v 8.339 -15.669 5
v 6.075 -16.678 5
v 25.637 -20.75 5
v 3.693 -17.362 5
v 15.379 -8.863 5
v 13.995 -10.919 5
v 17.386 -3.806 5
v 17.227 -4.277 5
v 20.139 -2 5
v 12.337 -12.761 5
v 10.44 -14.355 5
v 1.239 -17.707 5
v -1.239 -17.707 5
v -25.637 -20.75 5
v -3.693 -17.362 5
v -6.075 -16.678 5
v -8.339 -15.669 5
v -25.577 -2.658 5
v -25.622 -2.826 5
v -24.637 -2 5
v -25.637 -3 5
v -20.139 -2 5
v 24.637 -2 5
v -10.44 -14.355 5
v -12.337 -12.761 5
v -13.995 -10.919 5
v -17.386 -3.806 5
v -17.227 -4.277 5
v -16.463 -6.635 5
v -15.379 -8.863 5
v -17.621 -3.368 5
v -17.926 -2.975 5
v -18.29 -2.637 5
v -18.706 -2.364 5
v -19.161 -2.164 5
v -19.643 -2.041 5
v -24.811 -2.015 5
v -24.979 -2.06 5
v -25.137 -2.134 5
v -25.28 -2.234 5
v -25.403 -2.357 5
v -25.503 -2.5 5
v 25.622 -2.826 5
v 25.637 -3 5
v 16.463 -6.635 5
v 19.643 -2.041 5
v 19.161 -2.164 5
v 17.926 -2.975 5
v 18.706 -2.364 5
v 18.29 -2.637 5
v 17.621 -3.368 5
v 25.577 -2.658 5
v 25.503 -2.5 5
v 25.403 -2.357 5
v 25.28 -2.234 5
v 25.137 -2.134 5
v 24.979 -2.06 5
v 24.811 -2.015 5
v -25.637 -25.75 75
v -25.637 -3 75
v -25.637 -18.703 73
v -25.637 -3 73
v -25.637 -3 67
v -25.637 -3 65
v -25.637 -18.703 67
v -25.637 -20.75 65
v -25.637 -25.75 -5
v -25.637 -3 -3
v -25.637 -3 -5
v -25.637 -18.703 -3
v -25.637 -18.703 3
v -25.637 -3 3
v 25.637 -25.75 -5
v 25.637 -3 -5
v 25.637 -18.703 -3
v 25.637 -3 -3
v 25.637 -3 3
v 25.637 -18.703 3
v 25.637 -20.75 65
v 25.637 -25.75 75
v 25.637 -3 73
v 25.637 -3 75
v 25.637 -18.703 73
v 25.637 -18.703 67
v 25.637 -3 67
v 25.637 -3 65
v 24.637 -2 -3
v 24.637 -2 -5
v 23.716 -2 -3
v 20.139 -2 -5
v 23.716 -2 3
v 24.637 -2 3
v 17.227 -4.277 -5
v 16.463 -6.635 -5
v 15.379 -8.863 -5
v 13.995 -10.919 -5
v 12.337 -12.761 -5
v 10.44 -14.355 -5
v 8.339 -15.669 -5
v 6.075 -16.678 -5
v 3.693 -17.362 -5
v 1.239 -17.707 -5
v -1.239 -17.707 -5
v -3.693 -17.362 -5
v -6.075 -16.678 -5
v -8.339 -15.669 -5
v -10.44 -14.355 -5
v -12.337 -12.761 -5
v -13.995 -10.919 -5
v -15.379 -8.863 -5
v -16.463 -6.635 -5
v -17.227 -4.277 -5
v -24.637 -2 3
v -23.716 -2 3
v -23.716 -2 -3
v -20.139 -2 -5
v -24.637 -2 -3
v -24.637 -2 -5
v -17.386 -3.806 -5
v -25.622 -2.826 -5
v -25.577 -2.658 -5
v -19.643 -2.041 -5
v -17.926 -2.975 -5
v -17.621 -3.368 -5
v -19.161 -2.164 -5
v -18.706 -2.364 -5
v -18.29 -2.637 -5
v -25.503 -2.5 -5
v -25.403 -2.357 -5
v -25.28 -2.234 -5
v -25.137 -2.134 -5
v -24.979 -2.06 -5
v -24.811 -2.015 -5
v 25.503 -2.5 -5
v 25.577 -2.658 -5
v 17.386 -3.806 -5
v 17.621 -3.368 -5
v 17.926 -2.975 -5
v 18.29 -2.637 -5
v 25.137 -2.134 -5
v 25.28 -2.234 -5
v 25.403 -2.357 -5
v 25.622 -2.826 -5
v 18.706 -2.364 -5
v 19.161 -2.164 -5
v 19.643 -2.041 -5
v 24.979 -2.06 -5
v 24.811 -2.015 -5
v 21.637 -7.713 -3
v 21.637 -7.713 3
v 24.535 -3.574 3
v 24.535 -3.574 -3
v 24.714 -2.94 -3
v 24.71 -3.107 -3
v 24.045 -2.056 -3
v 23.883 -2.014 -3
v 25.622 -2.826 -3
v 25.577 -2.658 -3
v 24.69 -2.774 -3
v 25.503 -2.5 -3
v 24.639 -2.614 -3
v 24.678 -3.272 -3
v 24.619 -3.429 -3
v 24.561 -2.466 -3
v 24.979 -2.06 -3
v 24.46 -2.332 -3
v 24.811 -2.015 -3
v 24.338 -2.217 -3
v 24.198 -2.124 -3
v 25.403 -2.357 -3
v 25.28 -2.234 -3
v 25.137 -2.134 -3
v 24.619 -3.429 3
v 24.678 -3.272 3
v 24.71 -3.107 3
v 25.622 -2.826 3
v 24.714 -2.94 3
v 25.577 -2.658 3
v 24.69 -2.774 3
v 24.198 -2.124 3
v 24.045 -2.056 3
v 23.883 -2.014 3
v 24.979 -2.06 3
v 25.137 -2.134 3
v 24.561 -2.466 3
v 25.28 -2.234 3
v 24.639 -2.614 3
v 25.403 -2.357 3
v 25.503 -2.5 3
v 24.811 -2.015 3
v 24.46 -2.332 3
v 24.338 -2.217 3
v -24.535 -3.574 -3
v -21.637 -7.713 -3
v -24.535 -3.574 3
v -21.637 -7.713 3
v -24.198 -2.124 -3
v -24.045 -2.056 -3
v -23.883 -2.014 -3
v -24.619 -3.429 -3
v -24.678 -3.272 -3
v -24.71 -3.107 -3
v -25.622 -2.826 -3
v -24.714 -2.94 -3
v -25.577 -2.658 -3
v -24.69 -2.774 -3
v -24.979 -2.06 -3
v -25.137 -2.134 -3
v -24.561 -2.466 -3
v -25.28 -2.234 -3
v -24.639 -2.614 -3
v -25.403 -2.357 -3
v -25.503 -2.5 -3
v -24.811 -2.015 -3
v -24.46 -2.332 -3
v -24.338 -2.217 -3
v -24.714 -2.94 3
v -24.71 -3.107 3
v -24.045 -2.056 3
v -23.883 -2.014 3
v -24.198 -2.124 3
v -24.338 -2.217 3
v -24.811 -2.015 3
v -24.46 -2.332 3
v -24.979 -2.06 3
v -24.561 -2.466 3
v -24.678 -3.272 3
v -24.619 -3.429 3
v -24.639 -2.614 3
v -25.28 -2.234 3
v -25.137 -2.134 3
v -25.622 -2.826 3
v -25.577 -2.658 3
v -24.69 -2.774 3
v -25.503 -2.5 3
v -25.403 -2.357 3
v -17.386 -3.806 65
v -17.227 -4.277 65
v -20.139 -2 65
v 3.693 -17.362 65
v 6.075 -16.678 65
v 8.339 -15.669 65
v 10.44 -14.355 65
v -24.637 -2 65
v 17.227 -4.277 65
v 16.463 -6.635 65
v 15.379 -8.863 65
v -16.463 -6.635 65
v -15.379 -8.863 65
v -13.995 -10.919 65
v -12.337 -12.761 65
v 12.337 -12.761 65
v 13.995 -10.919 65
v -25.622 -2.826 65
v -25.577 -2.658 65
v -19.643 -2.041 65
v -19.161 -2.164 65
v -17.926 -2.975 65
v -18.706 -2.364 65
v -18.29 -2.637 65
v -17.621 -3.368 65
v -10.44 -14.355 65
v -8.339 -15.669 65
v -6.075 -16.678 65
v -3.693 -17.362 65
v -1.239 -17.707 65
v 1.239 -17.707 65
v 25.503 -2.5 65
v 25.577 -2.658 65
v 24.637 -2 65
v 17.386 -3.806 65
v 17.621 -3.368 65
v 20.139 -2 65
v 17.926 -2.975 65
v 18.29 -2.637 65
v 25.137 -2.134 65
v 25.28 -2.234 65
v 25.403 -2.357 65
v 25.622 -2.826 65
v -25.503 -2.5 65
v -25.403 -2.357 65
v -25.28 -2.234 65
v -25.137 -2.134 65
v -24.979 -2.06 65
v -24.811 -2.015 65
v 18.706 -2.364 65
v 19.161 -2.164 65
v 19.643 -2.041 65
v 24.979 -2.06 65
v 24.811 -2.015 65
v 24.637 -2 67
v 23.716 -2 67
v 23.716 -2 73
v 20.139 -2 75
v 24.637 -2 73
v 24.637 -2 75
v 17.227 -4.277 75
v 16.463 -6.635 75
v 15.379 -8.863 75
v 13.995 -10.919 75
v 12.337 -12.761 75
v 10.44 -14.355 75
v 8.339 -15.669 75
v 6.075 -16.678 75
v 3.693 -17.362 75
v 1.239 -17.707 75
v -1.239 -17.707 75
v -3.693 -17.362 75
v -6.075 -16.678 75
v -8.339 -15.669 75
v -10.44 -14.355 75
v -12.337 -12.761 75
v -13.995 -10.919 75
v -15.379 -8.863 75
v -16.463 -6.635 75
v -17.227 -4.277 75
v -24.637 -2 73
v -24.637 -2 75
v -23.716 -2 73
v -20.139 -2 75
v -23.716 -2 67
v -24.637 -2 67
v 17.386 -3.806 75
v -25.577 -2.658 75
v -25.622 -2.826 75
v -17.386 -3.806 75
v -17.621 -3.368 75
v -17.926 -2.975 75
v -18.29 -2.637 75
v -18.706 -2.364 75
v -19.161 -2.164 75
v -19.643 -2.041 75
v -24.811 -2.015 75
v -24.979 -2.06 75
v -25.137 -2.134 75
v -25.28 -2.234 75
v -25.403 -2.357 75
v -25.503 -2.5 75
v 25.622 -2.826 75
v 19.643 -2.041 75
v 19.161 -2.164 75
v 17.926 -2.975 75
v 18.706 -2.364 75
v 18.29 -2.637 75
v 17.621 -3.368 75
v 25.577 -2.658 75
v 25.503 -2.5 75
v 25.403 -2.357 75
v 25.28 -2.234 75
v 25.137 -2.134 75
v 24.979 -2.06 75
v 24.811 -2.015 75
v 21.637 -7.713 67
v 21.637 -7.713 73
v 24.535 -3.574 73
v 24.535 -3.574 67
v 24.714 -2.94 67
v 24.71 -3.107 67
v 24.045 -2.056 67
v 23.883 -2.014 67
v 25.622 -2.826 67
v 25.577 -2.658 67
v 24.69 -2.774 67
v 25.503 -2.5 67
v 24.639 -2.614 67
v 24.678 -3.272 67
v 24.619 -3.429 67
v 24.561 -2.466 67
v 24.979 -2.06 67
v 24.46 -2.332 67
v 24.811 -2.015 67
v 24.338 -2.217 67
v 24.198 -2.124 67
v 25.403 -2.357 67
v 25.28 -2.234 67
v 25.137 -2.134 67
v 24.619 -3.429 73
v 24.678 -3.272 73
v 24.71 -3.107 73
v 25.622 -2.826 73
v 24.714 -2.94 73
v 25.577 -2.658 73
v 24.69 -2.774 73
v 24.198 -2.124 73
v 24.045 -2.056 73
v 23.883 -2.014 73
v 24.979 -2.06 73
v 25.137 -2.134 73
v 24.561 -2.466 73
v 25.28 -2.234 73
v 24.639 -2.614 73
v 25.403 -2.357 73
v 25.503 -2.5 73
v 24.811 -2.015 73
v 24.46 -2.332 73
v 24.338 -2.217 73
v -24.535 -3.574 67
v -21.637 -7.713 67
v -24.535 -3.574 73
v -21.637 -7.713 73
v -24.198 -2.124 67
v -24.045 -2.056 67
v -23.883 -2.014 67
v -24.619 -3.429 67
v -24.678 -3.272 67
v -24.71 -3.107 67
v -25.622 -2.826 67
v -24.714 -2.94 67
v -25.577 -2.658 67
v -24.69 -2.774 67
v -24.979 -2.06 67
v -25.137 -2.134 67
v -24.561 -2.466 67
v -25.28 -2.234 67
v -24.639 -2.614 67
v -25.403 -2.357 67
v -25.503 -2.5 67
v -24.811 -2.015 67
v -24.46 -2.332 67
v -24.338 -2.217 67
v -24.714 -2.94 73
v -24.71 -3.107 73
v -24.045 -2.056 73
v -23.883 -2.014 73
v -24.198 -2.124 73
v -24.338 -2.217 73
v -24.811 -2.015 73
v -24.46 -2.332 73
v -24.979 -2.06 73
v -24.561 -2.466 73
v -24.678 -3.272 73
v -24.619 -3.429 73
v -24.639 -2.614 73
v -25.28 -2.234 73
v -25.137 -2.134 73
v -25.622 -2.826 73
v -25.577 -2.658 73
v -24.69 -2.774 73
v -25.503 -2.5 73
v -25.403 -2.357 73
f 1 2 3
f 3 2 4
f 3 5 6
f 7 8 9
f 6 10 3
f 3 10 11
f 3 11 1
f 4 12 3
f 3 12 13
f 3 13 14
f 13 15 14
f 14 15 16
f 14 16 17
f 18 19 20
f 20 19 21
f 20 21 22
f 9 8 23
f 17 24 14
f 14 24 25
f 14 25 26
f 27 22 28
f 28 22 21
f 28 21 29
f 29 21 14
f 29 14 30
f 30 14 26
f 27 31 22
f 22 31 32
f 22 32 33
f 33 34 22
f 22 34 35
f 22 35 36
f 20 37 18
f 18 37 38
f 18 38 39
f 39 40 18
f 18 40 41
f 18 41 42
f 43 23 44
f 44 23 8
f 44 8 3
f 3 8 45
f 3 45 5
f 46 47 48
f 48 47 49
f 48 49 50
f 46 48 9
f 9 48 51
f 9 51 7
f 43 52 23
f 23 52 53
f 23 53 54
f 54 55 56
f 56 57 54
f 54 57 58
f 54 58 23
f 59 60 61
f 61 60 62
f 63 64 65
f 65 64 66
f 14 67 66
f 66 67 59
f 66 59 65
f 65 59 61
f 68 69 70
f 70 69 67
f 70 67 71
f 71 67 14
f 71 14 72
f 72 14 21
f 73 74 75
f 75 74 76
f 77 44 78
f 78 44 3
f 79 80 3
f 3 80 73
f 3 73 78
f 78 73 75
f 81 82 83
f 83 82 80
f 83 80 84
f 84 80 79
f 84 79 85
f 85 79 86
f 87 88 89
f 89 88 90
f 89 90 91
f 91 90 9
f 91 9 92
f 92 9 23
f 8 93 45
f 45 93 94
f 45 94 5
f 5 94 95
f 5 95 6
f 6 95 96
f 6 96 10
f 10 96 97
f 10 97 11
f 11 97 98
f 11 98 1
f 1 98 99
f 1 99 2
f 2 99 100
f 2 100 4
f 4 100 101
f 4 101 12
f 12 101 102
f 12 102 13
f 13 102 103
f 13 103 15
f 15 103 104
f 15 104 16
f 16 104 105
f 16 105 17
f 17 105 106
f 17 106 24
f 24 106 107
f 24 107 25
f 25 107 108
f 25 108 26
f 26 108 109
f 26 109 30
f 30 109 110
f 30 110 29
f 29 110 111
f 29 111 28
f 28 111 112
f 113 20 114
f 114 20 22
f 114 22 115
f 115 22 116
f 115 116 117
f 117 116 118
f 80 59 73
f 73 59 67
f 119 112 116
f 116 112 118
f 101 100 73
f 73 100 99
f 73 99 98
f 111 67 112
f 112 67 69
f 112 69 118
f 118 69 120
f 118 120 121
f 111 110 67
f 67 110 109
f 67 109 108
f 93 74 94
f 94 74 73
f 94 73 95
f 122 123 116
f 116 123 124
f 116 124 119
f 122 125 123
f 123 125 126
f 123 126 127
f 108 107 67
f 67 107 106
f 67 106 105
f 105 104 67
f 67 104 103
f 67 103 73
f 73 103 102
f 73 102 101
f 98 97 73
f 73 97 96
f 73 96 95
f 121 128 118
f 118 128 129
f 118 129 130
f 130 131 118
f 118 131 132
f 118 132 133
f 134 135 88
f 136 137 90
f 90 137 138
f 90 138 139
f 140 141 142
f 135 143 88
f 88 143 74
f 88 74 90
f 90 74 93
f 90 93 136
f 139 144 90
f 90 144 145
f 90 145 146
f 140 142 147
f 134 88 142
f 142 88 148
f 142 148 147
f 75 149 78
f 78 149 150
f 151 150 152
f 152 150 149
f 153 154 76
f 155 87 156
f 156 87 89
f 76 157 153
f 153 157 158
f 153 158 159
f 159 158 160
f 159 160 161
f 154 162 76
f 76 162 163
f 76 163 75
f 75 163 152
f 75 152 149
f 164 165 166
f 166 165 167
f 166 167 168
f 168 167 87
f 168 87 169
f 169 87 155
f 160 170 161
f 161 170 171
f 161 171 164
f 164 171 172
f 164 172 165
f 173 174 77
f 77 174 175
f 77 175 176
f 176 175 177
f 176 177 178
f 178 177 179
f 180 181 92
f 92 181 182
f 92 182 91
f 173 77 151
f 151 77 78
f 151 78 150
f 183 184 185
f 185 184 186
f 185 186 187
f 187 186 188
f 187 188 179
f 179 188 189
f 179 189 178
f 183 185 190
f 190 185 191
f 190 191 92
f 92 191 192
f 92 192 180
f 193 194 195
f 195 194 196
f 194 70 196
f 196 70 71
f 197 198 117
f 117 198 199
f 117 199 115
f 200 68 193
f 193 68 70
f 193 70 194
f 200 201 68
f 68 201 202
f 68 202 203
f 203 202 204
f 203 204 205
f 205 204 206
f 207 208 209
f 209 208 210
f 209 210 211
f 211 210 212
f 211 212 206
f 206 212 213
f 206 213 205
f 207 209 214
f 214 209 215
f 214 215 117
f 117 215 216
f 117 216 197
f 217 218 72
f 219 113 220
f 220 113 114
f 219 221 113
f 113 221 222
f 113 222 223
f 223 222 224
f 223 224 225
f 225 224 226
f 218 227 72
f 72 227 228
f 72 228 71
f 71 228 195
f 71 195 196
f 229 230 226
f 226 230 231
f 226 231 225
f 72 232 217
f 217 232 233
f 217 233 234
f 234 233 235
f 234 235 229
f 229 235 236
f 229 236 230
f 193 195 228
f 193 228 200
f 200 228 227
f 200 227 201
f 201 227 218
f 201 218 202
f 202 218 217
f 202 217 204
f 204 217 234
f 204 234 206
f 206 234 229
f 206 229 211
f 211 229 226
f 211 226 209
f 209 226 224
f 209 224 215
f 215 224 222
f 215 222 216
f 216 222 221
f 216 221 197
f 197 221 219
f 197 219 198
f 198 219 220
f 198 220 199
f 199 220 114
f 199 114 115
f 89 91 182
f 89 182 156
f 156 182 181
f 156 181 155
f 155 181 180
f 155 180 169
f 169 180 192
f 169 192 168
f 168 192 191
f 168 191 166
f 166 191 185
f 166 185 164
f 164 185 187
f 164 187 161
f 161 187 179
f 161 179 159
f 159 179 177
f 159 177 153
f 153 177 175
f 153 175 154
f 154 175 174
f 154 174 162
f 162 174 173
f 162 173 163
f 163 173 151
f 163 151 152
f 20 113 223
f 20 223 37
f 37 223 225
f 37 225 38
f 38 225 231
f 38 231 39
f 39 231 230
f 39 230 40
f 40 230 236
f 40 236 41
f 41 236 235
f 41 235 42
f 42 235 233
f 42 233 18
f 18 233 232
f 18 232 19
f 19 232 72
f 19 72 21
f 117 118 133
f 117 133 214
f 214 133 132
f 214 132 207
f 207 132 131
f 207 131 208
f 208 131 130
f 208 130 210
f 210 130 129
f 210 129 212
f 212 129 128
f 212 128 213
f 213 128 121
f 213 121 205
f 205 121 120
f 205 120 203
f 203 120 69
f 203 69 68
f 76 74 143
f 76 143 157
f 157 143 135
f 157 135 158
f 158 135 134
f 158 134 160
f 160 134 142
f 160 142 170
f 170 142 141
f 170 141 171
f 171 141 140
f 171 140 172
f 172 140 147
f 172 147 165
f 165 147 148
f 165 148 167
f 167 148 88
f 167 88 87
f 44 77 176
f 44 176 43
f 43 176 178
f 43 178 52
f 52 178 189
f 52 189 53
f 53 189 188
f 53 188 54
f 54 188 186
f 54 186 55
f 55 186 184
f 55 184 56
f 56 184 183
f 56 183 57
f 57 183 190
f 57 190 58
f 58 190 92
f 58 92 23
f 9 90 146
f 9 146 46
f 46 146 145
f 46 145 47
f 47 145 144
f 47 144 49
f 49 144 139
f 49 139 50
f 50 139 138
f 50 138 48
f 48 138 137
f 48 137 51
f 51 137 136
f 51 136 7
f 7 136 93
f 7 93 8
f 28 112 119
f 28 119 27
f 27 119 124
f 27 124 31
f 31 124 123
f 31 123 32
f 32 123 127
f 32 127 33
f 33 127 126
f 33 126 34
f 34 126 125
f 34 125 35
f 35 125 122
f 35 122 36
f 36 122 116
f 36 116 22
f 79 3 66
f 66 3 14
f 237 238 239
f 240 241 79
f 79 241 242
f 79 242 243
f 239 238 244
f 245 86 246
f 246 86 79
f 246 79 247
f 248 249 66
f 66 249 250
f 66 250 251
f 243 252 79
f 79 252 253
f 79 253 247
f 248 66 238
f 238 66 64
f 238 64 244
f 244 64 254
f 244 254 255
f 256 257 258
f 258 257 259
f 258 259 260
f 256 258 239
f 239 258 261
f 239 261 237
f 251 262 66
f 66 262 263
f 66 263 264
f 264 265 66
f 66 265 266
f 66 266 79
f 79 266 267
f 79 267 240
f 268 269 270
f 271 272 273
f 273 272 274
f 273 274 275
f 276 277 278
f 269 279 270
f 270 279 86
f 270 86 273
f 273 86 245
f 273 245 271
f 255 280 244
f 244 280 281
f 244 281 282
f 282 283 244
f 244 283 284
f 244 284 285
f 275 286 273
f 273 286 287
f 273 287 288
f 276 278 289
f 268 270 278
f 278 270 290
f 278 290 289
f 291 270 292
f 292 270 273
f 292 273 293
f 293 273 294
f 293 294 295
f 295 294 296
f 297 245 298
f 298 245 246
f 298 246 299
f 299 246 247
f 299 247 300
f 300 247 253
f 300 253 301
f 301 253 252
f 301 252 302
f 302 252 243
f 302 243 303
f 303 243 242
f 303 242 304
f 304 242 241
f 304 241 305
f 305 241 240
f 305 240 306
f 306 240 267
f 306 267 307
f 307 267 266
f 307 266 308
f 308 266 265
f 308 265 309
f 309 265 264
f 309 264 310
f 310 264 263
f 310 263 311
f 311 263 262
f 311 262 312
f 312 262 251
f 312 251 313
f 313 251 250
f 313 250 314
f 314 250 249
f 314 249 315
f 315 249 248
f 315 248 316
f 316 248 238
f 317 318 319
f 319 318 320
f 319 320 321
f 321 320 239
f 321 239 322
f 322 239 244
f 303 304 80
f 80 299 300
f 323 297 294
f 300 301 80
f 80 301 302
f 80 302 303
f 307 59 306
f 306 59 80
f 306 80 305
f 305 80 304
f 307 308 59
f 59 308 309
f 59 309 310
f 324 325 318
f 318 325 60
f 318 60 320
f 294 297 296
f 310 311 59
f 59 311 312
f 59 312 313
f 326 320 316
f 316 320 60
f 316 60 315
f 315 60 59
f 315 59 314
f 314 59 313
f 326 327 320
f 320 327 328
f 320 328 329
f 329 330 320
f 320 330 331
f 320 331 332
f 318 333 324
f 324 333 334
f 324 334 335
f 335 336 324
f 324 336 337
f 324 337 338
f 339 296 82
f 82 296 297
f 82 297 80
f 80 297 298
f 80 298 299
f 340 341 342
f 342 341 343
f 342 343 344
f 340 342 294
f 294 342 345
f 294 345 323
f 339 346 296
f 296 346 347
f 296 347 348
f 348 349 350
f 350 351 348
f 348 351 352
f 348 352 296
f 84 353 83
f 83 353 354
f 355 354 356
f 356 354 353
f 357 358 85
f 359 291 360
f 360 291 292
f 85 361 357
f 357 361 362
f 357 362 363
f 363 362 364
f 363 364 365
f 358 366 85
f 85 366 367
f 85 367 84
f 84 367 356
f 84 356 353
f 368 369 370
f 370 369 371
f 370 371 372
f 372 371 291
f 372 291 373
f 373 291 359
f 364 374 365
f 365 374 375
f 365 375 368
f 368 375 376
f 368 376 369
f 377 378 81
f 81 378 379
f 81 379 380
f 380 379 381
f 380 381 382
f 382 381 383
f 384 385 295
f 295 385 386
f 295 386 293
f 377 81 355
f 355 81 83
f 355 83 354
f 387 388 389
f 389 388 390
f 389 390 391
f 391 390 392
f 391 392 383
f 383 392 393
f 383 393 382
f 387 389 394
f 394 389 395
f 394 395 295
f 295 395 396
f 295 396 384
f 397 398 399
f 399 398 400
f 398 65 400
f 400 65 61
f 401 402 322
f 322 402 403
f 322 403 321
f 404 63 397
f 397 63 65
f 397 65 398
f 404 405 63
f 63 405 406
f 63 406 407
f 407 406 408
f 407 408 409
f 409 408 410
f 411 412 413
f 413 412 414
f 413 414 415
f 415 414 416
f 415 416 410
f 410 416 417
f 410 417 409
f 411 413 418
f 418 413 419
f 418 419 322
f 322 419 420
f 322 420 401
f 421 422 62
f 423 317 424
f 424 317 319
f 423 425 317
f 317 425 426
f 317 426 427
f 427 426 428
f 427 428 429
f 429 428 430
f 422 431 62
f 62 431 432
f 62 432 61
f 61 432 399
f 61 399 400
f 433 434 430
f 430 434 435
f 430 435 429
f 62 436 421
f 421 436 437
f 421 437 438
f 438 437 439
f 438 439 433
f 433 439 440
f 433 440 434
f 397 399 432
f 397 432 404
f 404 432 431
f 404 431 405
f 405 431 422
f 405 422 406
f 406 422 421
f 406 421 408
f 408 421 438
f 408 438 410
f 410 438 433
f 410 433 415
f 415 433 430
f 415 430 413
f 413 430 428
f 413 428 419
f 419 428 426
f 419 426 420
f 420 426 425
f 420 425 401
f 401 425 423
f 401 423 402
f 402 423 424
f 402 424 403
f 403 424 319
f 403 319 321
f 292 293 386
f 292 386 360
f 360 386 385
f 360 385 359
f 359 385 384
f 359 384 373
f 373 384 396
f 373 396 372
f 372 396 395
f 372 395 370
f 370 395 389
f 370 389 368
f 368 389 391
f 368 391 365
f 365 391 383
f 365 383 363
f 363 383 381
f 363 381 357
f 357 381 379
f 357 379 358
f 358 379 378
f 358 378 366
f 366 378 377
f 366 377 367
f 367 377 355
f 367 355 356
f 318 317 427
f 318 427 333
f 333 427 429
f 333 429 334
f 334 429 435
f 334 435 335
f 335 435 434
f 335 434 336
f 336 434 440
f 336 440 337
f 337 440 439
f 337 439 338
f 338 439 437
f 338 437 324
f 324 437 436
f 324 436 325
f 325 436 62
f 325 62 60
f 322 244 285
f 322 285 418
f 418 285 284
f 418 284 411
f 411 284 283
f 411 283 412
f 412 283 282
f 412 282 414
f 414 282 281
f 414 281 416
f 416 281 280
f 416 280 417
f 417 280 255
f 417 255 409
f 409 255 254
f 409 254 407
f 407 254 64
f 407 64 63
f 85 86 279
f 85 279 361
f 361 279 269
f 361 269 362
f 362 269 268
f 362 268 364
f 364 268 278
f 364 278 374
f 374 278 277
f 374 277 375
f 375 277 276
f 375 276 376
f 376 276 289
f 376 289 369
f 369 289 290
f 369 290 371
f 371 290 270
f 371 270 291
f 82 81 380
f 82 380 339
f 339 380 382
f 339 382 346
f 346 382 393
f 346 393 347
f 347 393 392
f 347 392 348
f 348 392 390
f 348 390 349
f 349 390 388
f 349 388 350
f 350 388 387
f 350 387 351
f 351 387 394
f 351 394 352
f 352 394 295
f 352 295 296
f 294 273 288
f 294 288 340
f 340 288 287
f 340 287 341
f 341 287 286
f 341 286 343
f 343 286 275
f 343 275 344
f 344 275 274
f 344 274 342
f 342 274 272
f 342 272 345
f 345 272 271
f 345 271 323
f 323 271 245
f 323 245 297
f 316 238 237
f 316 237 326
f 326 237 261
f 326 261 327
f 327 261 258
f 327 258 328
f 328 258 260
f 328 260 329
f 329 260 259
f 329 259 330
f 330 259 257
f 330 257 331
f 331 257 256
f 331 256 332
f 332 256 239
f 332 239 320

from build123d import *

# Parameters (mm, degrees)
BOSS_EXTRUDE1_DEPTH = 5
CUT_EXTRUDE1_DEPTH  = 3
FILLET2_R           = 1
FILLET3_R           = 1
FILLET4_R           = 3
LPATTERN1_COUNT     = 2
LPATTERN1_PITCH     = 70
BOSS_EXTRUDE2_REACH = 80.869
SKETCH3_W           = 51.273928048
SKETCH3_H           = 5


with BuildPart() as part:
    # Sketch1 → Boss-Extrude1 (new, symmetric)
    with BuildSketch(Plane.XY):
        with BuildLine():
            Line((25.636964024, -25.75), (25.636964024, -2))
            Line((25.636964024, -2), (17.636964024, -2))
            ThreePointArc((17.636964024, -2), (0, -17.75), (-17.636964024, -2))
            Line((-17.636964024, -2), (-25.636964024, -2))
            Line((-25.636964024, -2), (-25.636964024, -25.75))
            Line((-25.636964024, -25.75), (25.636964024, -25.75))
        make_face()
    extrude(amount=BOSS_EXTRUDE1_DEPTH, both=True)

    # Sketch2 → Cut-Extrude1 (cut, symmetric)
    with BuildSketch(Plane.XY):
        Polygon((25.636964024, -2), (21.636964024, -7.712592027), (25.636964024, -18.702501705), align=None)
    cut_extrude1 = extrude(amount=CUT_EXTRUDE1_DEPTH, both=True, mode=Mode.SUBTRACT)

    # Mirror4: Cut-Extrude1 across plane
    add(cut_extrude1.mirror(Plane(origin=(0, 0, 0), x_dir=(0, 0, 1), z_dir=(1, 0, 0))), mode=Mode.SUBTRACT)

    # Fillet2
    fillet2_edges = [part.edges().sort_by_distance(p)[0] for p in [
        (25.636964024, -2, 0),
        (-25.636964024, -2, 0),
    ]]
    fillet(fillet2_edges, radius=FILLET2_R)

    # Fillet3
    fillet3_edges = [part.edges().sort_by_distance(p)[0] for p in [
        (25.636964024, -2, 4),
        (-25.636964024, -2, 4),
        (25.636964024, -2, -4),
        (-25.636964024, -2, -4),
    ]]
    fillet(fillet3_edges, radius=FILLET3_R)

    # Fillet4
    fillet4_edges = [part.edges().sort_by_distance(p)[0] for p in [
        (-17.636964024, -2, 0),
        (17.636964024, -2, 0),
    ]]
    fillet(fillet4_edges, radius=FILLET4_R)


with BuildPart() as lpattern1_1:
    # LPattern1: pattern copy
    add(part.part.moved(Location(Vector(0, 0, 1) * (1 * LPATTERN1_PITCH))))

    # Sketch3 → Boss-Extrude2 (add, up to next)
    with BuildSketch(Plane.XY.offset(5), mode=Mode.PRIVATE) as boss_extrude2_sk1:
        with Locations((0, -23.25)):
            Rectangle(SKETCH3_W, SKETCH3_H)
    boss_extrude2_tool1 = extrude(boss_extrude2_sk1.sketch, amount=BOSS_EXTRUDE2_REACH, mode=Mode.PRIVATE) - lpattern1_1.part

    add(part.part)  # Boss-Extrude2 merges part
    add(boss_extrude2_tool1.solids().sort_by_distance((0, -23.25, 5))[0])


solid = lpattern1_1.part
